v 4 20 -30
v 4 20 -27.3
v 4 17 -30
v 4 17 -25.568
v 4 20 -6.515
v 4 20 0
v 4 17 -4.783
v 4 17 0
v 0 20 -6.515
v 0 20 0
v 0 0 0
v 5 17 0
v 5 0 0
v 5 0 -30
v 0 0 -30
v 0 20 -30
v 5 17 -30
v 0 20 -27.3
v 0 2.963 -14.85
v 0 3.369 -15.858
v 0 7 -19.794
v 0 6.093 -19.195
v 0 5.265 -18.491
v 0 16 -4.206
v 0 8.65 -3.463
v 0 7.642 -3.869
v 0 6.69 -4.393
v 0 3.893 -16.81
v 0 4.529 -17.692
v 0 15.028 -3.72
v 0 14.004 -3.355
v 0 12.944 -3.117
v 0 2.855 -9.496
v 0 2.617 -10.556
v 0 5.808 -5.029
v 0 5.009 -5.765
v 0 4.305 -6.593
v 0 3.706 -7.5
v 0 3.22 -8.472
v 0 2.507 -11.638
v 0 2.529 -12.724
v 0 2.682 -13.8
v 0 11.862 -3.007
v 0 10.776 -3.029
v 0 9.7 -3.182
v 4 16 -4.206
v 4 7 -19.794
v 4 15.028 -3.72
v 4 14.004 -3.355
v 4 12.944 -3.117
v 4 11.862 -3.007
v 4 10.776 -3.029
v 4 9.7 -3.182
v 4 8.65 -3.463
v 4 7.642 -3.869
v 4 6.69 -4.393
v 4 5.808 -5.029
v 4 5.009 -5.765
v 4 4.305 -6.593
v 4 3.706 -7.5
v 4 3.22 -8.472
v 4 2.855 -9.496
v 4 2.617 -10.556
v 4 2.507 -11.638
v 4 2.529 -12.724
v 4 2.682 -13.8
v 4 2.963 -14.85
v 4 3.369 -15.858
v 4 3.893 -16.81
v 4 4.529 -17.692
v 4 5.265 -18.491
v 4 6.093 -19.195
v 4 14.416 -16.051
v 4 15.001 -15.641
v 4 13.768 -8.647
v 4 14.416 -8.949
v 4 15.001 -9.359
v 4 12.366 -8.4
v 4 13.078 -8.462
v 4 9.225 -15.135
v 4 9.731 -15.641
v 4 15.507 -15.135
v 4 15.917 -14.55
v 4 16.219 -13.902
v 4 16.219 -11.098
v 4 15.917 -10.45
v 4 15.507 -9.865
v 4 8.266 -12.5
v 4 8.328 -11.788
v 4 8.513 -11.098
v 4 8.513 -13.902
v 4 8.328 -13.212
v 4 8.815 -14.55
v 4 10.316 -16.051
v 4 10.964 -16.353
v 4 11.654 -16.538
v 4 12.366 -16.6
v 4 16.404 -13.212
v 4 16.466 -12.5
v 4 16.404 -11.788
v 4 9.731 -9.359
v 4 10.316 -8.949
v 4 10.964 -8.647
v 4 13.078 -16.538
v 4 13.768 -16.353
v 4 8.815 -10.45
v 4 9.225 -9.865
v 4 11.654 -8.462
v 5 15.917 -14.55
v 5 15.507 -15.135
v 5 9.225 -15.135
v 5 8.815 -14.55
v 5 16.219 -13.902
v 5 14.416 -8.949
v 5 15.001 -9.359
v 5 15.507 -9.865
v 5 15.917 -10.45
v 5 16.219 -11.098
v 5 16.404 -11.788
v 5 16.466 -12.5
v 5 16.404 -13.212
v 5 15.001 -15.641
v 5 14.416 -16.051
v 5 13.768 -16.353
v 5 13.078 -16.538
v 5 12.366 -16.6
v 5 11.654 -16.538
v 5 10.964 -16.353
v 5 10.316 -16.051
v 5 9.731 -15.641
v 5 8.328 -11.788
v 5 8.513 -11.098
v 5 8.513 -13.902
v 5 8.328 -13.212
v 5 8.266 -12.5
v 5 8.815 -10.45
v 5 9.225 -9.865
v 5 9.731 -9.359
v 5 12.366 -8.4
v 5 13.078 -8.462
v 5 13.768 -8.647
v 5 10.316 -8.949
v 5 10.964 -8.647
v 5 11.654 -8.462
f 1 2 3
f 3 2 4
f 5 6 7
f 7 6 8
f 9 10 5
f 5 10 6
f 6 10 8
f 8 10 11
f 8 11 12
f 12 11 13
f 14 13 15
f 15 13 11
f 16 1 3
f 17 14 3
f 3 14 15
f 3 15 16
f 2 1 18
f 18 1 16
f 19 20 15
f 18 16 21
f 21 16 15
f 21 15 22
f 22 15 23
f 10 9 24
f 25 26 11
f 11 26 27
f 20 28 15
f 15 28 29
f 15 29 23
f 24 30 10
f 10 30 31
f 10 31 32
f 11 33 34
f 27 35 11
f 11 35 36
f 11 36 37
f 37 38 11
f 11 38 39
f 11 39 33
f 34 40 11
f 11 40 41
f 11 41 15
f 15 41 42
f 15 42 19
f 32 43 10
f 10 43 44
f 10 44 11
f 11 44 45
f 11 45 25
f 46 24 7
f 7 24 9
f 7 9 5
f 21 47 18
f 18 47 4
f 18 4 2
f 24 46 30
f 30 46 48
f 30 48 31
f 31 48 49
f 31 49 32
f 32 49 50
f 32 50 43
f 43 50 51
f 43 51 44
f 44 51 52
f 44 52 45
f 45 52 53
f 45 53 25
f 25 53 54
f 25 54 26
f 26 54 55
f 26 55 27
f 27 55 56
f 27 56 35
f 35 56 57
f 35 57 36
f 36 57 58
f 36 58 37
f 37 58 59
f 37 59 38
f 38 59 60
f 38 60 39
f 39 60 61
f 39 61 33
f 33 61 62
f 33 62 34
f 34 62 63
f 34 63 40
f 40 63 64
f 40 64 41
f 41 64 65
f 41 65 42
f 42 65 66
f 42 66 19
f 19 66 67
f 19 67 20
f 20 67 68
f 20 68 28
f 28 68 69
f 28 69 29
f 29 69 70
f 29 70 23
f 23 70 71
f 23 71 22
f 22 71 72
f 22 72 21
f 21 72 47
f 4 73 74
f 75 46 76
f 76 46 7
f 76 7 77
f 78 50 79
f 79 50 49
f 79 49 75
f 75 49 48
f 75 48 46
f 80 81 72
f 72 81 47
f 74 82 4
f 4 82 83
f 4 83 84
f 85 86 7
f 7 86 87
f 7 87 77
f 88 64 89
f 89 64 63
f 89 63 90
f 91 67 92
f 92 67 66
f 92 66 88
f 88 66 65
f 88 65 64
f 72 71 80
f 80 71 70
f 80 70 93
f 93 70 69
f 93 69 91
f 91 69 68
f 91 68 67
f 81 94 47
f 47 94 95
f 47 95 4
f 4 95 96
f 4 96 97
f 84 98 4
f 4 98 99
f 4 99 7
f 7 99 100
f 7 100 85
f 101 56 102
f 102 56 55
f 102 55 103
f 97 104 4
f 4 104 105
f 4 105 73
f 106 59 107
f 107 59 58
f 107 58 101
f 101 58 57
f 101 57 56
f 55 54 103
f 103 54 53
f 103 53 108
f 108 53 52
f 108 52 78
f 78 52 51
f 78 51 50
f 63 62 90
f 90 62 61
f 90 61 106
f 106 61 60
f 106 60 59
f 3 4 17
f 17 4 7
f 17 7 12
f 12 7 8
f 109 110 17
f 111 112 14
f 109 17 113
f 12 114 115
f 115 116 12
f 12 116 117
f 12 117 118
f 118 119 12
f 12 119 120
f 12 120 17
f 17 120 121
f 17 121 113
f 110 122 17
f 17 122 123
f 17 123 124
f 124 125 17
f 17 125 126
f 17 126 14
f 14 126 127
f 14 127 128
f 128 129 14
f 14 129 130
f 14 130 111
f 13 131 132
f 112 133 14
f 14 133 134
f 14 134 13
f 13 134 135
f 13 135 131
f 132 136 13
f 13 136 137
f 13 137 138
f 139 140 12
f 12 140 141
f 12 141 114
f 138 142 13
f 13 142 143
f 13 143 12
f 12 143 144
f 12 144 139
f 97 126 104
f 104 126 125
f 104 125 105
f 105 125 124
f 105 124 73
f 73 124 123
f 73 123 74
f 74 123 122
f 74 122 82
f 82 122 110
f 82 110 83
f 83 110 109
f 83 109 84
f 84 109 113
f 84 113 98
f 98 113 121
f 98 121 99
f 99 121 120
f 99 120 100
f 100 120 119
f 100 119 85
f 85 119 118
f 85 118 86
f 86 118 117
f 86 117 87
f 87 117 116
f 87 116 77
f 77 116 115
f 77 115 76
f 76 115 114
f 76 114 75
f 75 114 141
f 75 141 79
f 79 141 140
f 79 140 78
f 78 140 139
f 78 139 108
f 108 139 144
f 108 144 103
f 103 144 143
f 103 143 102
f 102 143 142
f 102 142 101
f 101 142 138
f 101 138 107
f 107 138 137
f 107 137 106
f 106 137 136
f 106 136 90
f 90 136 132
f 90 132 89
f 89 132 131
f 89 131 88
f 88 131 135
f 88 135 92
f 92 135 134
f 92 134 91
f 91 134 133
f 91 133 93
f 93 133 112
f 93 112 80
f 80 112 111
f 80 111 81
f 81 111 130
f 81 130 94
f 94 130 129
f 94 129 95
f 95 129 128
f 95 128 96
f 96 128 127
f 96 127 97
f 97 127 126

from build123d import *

# Parameters (mm, degrees)
SKETCH1_W           = 30
SKETCH1_H           = 20
BOSS_EXTRUDE1_DEPTH = 4
CUT_EXTRUDE1_DEPTH  = 37.276714294
SKETCH3_W           = 30
SKETCH3_H           = 17
BOSS_EXTRUDE2_DEPTH = 1
SKETCH4_R           = 4.1
CUT_EXTRUDE2_DEPTH  = 37.400549446


with BuildPart() as part:
    # Sketch1 → Boss-Extrude1 (new body)
    with BuildSketch(Plane(origin=(0, 0, 0), x_dir=(0, 0, -1), z_dir=(1, 0, 0))):
        with Locations((15, 10)):
            Rectangle(SKETCH1_W, SKETCH1_H)
    extrude(amount=BOSS_EXTRUDE1_DEPTH)

    # Sketch2 → Cut-Extrude1 (cut, through all)
    with BuildSketch(Plane(origin=(4, 0, 0), x_dir=(0, 0, -1), z_dir=(1, 0, 0))):
        with BuildLine():
            Line((4.205771366, 16), (19.205771366, 41.980762114))
            Line((19.205771366, 41.980762114), (34.794228634, 32.980762114))
            Line((34.794228634, 32.980762114), (19.794228634, 7))
            ThreePointArc((19.794228634, 7), (7.5, 3.705771366), (4.205771366, 16))
        make_face()
    extrude(amount=-CUT_EXTRUDE1_DEPTH, mode=Mode.SUBTRACT)

    # Sketch3 → Boss-Extrude2 (add)
    with BuildSketch(Plane(origin=(4, 0, 0), x_dir=(0, 0, -1), z_dir=(1, 0, 0))):
        with Locations((15, 8.5)):
            Rectangle(SKETCH3_W, SKETCH3_H)
    extrude(amount=BOSS_EXTRUDE2_DEPTH)

    # Sketch4 → Cut-Extrude2 (cut, through all)
    with BuildSketch(Plane(origin=(5, 0, 0), x_dir=(0, 0, -1), z_dir=(1, 0, 0))):
        with Locations((12.5, 12.366025404)):
            Circle(SKETCH4_R)
    extrude(amount=-CUT_EXTRUDE2_DEPTH, mode=Mode.SUBTRACT)


solid = part.part
